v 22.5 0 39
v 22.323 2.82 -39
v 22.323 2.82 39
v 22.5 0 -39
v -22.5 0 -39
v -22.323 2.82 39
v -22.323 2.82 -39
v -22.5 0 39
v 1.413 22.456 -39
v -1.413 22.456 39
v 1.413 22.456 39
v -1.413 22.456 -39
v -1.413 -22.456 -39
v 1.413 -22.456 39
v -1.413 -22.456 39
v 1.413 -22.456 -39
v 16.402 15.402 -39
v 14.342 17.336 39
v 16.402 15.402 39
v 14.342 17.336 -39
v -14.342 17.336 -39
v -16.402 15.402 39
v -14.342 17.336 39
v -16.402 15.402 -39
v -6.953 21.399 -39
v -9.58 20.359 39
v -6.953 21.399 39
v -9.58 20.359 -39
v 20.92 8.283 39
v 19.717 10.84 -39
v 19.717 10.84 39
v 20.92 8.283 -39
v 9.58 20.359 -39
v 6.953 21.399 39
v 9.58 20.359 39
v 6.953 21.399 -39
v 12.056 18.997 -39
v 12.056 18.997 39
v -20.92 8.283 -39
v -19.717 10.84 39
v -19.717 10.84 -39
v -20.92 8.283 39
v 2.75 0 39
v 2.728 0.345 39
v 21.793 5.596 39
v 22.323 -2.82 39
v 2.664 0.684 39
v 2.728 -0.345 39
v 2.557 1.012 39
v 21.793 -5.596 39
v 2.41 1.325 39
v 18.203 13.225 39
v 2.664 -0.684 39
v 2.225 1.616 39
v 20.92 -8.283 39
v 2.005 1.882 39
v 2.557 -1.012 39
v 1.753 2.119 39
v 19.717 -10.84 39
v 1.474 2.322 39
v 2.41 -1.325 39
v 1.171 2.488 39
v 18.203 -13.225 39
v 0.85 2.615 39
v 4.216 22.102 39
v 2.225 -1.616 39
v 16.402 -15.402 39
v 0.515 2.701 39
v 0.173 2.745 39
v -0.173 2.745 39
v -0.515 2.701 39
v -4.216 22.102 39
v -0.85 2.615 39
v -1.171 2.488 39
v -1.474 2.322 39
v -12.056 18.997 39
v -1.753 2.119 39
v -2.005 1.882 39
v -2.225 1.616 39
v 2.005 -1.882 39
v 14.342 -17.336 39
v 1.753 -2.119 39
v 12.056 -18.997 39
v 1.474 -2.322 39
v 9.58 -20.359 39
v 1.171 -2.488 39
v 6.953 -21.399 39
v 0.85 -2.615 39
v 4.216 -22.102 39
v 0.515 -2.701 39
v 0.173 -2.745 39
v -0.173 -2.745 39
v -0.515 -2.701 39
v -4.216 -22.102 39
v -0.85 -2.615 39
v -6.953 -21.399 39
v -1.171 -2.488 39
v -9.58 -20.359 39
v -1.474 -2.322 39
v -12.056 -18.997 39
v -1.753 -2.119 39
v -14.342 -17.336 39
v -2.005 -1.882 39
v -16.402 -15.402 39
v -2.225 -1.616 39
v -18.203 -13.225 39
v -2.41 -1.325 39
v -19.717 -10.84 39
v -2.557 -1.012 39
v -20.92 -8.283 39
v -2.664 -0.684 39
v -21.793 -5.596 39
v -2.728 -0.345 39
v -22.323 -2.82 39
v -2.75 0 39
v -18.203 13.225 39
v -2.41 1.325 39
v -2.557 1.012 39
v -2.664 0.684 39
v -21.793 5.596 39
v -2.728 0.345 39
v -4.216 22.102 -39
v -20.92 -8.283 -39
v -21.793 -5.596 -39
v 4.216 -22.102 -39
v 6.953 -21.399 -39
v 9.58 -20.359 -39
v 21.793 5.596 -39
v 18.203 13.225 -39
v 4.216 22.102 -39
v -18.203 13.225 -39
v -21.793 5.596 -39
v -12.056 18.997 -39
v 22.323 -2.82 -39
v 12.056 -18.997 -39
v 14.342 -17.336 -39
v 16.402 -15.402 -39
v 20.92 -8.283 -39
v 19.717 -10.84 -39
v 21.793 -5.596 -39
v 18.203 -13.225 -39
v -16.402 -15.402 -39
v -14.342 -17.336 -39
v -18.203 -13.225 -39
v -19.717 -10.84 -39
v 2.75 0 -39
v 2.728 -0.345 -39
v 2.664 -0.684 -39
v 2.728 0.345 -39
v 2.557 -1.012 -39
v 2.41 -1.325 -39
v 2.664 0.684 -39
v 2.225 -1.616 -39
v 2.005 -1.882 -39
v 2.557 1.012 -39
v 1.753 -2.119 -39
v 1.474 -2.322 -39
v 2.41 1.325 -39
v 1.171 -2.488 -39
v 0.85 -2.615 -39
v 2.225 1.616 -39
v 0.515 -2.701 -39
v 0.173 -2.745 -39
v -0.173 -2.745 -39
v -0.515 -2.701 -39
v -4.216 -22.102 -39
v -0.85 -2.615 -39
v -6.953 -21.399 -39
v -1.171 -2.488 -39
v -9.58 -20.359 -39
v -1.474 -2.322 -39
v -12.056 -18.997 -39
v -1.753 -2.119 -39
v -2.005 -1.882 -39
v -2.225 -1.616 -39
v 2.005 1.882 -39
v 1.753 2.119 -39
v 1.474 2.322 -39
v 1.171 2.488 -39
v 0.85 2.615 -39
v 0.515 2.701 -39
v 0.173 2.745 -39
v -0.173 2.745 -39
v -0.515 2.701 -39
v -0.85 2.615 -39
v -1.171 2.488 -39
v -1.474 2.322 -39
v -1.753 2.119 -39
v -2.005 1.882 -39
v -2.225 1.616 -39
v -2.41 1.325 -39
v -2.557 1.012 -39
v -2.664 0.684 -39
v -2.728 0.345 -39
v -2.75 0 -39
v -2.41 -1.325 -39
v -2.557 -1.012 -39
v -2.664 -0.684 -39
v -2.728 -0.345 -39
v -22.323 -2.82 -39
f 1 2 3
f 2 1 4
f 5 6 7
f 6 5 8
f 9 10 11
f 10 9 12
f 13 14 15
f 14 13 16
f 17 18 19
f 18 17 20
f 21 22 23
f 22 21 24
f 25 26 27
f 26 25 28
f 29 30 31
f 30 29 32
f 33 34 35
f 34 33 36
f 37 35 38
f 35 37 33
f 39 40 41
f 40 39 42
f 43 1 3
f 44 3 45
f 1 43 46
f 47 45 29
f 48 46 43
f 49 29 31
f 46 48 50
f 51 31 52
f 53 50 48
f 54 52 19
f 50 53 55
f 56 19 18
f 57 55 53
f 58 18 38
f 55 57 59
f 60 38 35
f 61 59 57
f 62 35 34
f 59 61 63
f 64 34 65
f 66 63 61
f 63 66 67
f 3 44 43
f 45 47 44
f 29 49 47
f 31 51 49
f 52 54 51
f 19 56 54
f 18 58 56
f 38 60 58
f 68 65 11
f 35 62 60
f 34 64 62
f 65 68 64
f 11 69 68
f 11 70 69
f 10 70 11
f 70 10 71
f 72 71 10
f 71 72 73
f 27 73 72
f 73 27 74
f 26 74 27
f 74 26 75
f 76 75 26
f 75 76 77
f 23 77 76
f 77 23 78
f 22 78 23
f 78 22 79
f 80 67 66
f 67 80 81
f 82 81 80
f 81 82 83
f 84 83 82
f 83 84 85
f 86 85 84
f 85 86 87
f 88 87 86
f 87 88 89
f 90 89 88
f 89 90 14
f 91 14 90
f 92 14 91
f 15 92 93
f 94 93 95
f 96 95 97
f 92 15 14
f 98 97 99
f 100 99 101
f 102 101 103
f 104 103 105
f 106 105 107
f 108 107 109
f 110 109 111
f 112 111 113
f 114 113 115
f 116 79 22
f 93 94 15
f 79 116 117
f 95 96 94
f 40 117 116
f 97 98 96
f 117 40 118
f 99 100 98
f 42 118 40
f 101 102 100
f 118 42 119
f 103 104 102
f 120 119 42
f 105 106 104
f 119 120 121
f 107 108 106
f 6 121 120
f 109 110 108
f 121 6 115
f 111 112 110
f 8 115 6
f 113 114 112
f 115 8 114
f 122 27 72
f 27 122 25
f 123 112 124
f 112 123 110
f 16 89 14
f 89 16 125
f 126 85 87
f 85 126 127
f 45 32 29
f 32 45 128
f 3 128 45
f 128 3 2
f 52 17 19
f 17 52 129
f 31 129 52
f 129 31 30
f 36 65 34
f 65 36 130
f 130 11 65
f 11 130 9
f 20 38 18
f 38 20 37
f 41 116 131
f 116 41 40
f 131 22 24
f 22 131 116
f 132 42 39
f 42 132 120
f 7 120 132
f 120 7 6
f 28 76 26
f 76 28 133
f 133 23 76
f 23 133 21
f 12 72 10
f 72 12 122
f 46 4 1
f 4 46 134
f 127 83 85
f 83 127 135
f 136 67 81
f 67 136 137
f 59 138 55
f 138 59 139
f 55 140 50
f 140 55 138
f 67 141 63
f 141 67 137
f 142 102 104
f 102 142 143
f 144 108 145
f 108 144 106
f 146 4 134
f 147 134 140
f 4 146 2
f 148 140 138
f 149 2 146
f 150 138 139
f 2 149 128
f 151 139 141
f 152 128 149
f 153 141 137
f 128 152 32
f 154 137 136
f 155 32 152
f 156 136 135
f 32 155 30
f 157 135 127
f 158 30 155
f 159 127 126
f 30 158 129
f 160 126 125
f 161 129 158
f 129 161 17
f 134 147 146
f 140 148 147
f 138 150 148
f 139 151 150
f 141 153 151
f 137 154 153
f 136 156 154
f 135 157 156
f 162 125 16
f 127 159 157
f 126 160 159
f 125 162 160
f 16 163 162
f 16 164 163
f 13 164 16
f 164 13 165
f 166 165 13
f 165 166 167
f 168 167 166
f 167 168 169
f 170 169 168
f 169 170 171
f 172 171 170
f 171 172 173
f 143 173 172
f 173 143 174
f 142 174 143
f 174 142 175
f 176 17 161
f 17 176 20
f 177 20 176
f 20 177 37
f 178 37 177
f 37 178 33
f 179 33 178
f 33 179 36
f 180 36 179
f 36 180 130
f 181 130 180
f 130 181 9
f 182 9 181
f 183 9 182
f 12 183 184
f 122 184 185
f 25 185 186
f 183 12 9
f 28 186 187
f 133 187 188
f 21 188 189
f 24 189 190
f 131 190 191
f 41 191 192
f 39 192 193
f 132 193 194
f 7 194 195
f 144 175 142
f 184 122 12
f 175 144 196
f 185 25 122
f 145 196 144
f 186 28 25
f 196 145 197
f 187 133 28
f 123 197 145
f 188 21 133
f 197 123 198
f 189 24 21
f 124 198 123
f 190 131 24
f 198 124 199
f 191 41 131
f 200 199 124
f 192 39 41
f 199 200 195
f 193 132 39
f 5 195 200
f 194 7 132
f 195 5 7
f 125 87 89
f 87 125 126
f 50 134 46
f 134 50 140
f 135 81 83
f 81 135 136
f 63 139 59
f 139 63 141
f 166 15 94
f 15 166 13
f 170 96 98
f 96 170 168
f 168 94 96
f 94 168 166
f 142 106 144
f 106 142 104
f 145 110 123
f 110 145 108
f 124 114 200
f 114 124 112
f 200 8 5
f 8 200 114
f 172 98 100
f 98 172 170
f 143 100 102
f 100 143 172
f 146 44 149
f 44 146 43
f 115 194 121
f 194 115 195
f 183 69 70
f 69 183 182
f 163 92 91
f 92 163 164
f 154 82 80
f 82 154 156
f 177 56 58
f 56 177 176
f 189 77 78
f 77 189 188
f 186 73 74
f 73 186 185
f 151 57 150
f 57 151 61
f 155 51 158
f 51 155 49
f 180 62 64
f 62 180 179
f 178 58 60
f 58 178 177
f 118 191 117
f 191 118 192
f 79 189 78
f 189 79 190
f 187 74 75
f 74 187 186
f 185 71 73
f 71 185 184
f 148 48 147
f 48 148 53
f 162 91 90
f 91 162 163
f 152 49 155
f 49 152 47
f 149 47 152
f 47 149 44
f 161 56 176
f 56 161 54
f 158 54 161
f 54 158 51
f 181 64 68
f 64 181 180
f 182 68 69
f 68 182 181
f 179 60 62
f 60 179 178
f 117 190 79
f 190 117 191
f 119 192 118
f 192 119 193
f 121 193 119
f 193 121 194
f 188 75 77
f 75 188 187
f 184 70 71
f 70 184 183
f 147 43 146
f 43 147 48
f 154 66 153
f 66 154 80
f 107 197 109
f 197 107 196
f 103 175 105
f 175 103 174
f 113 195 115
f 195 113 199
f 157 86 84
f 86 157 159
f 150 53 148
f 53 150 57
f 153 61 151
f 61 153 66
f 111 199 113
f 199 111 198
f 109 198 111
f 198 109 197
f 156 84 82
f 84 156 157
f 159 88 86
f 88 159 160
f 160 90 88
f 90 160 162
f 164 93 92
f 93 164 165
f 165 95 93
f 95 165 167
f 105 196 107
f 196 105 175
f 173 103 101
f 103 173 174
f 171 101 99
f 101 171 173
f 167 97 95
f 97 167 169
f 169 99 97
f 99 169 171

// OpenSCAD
$fn = 50;


difference() {
	union() {
		translate(v = [0, 0, -39.0000000000]) {
			cylinder(h = 78, r = 22.5000000000);
		}
	}
	union() {
		translate(v = [0, 0, -100.0000000000]) {
			cylinder(h = 200, r = 2.7500000000);
		}
	}
}
